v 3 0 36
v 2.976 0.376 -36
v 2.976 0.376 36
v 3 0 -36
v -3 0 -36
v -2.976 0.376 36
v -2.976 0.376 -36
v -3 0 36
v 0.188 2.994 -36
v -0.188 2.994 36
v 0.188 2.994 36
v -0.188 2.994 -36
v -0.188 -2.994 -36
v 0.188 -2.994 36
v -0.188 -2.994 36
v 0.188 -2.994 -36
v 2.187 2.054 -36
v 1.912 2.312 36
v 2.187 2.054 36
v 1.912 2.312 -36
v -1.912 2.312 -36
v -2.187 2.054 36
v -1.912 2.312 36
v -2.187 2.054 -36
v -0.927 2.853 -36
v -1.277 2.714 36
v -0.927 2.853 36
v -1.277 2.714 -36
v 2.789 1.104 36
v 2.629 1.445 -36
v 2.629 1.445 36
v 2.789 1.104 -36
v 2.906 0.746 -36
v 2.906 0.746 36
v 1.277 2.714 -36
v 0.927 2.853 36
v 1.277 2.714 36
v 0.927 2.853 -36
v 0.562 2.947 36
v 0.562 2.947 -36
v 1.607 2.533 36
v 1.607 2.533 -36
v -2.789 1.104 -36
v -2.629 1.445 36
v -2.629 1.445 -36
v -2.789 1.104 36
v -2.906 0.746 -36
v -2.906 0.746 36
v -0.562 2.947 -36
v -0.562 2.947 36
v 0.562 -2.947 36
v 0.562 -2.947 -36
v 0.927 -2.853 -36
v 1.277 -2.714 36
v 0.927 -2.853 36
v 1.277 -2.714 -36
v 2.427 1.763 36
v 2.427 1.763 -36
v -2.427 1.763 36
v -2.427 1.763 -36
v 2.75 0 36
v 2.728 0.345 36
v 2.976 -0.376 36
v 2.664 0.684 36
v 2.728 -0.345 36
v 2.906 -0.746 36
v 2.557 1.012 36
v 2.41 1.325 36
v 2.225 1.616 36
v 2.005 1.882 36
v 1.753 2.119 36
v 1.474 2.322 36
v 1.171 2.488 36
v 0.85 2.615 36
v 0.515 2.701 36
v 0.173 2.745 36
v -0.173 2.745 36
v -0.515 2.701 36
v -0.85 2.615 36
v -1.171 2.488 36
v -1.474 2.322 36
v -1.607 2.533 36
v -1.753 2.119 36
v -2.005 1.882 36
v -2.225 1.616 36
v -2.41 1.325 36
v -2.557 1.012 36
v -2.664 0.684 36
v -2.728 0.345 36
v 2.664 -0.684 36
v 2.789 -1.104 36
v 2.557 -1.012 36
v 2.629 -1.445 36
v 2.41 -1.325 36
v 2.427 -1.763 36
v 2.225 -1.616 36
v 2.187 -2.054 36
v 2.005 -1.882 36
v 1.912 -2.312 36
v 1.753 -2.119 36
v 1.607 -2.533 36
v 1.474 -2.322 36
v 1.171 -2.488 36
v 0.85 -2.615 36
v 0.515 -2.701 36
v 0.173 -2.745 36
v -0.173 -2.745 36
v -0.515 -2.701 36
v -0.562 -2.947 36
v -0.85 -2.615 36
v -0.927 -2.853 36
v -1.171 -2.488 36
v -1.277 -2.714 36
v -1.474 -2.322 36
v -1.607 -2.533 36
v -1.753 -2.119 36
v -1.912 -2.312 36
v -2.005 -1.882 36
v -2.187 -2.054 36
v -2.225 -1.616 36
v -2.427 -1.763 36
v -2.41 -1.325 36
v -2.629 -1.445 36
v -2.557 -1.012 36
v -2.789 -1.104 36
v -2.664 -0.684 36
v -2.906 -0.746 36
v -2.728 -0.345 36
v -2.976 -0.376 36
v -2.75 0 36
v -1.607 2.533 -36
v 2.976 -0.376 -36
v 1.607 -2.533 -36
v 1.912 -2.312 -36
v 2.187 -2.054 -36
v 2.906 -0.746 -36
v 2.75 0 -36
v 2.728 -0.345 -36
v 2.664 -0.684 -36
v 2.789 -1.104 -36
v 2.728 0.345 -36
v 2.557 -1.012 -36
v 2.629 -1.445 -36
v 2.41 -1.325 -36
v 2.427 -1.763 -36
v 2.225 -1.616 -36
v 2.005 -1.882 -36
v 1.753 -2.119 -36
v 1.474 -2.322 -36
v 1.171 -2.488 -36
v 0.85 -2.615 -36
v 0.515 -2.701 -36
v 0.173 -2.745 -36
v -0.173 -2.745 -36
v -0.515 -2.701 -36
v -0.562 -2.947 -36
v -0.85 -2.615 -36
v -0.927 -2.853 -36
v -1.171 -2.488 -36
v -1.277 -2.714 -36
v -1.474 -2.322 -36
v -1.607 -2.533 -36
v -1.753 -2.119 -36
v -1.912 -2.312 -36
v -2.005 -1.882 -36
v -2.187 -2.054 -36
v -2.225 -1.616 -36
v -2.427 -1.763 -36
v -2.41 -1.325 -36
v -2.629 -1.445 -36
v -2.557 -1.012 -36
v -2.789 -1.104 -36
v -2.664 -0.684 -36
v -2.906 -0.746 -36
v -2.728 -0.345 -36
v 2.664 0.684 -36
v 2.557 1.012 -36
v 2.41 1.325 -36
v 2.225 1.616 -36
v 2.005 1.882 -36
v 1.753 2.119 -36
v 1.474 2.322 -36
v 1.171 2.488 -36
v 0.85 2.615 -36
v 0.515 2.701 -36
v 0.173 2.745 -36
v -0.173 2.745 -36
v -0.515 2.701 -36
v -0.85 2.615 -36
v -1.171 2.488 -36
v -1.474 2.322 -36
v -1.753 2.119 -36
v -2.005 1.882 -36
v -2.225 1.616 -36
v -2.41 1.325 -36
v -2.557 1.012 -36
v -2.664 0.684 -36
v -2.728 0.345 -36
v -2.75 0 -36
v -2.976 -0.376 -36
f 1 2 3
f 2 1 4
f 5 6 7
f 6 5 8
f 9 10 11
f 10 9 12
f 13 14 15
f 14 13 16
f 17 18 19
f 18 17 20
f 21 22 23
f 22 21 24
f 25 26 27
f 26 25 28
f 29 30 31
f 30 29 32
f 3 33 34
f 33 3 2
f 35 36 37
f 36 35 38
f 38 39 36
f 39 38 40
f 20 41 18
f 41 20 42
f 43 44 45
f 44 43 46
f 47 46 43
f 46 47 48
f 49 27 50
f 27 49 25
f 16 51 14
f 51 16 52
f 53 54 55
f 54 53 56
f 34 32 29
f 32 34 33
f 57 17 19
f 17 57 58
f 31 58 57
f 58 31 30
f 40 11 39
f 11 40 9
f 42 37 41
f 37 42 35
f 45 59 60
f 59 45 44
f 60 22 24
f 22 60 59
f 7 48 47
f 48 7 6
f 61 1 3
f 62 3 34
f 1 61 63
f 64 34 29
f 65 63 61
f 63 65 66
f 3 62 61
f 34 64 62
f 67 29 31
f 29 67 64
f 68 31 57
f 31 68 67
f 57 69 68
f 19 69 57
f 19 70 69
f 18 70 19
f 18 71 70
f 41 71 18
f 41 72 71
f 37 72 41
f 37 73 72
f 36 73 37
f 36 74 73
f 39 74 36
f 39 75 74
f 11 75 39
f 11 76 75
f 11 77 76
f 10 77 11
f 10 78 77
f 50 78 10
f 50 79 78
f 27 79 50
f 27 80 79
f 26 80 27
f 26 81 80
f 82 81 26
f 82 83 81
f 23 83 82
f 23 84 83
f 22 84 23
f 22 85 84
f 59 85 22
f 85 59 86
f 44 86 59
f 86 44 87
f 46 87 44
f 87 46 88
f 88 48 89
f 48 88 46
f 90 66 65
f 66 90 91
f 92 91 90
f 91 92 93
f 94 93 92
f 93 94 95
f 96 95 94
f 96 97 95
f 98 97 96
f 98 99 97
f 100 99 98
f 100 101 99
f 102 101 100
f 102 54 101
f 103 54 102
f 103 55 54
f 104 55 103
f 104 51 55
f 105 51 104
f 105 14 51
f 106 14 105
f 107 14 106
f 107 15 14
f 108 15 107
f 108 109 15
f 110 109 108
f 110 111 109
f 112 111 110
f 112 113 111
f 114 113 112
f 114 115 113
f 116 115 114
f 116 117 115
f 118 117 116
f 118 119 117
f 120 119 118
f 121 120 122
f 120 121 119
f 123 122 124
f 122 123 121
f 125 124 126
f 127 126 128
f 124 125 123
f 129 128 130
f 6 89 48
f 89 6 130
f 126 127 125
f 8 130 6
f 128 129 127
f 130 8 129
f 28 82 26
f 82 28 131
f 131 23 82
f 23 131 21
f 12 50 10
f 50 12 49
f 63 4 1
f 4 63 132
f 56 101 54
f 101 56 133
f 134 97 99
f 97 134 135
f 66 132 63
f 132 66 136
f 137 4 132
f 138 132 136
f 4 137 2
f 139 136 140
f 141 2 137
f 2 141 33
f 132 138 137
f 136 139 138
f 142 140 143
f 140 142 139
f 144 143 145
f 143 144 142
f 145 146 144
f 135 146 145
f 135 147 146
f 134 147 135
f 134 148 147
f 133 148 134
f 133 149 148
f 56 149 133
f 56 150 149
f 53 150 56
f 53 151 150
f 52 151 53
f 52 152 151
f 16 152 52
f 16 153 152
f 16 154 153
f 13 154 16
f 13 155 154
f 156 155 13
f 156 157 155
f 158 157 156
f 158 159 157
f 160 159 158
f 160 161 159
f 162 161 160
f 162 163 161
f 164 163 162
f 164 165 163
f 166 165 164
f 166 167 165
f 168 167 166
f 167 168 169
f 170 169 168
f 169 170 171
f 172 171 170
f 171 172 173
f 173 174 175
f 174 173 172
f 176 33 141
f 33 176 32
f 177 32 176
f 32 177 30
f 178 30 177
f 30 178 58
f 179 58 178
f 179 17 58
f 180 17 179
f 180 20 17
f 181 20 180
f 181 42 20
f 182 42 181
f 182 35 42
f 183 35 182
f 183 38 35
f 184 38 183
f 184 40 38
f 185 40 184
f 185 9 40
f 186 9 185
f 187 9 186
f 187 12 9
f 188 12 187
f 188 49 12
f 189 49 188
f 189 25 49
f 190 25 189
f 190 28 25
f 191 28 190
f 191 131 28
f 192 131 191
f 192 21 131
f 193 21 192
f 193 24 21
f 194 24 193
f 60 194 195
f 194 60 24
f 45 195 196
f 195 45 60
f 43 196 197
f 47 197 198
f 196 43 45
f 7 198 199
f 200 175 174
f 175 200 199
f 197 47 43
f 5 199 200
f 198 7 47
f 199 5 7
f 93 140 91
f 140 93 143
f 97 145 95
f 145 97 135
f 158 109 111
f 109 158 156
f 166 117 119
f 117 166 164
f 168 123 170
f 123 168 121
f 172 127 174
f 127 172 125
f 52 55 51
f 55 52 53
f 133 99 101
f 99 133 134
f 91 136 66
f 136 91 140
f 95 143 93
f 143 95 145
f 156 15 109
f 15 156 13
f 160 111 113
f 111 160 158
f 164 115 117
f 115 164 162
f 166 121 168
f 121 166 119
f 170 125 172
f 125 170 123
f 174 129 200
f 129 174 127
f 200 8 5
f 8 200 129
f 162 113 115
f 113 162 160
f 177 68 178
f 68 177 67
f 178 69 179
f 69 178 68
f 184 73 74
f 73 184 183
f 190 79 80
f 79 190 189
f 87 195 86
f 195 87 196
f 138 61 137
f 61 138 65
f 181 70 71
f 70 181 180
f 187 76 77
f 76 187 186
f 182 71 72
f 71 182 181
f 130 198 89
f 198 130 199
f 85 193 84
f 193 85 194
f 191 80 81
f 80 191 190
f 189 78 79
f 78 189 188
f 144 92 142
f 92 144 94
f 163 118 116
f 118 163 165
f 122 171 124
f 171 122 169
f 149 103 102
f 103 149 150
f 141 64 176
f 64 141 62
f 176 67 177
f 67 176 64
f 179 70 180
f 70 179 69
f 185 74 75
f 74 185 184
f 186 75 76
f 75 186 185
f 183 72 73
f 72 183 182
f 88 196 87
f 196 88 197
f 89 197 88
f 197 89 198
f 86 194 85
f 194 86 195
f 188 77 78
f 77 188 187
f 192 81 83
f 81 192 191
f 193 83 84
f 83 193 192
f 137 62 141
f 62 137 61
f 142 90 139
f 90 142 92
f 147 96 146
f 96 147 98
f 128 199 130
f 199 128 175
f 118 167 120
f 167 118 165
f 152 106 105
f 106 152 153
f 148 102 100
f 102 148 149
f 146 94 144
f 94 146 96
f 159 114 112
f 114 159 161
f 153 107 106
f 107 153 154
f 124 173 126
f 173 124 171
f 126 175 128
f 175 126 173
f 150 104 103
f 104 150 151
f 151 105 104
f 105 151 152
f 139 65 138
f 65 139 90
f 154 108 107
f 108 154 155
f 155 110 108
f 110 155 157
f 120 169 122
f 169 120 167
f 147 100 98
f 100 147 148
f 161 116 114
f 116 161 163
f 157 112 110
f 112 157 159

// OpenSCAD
$fn = 50;


difference() {
	union() {
		translate(v = [0, 0, -36.0000000000]) {
			cylinder(h = 72, r = 3.0000000000);
		}
	}
	union() {
		translate(v = [0, 0, -100.0000000000]) {
			cylinder(h = 200, r = 2.7500000000);
		}
	}
}
